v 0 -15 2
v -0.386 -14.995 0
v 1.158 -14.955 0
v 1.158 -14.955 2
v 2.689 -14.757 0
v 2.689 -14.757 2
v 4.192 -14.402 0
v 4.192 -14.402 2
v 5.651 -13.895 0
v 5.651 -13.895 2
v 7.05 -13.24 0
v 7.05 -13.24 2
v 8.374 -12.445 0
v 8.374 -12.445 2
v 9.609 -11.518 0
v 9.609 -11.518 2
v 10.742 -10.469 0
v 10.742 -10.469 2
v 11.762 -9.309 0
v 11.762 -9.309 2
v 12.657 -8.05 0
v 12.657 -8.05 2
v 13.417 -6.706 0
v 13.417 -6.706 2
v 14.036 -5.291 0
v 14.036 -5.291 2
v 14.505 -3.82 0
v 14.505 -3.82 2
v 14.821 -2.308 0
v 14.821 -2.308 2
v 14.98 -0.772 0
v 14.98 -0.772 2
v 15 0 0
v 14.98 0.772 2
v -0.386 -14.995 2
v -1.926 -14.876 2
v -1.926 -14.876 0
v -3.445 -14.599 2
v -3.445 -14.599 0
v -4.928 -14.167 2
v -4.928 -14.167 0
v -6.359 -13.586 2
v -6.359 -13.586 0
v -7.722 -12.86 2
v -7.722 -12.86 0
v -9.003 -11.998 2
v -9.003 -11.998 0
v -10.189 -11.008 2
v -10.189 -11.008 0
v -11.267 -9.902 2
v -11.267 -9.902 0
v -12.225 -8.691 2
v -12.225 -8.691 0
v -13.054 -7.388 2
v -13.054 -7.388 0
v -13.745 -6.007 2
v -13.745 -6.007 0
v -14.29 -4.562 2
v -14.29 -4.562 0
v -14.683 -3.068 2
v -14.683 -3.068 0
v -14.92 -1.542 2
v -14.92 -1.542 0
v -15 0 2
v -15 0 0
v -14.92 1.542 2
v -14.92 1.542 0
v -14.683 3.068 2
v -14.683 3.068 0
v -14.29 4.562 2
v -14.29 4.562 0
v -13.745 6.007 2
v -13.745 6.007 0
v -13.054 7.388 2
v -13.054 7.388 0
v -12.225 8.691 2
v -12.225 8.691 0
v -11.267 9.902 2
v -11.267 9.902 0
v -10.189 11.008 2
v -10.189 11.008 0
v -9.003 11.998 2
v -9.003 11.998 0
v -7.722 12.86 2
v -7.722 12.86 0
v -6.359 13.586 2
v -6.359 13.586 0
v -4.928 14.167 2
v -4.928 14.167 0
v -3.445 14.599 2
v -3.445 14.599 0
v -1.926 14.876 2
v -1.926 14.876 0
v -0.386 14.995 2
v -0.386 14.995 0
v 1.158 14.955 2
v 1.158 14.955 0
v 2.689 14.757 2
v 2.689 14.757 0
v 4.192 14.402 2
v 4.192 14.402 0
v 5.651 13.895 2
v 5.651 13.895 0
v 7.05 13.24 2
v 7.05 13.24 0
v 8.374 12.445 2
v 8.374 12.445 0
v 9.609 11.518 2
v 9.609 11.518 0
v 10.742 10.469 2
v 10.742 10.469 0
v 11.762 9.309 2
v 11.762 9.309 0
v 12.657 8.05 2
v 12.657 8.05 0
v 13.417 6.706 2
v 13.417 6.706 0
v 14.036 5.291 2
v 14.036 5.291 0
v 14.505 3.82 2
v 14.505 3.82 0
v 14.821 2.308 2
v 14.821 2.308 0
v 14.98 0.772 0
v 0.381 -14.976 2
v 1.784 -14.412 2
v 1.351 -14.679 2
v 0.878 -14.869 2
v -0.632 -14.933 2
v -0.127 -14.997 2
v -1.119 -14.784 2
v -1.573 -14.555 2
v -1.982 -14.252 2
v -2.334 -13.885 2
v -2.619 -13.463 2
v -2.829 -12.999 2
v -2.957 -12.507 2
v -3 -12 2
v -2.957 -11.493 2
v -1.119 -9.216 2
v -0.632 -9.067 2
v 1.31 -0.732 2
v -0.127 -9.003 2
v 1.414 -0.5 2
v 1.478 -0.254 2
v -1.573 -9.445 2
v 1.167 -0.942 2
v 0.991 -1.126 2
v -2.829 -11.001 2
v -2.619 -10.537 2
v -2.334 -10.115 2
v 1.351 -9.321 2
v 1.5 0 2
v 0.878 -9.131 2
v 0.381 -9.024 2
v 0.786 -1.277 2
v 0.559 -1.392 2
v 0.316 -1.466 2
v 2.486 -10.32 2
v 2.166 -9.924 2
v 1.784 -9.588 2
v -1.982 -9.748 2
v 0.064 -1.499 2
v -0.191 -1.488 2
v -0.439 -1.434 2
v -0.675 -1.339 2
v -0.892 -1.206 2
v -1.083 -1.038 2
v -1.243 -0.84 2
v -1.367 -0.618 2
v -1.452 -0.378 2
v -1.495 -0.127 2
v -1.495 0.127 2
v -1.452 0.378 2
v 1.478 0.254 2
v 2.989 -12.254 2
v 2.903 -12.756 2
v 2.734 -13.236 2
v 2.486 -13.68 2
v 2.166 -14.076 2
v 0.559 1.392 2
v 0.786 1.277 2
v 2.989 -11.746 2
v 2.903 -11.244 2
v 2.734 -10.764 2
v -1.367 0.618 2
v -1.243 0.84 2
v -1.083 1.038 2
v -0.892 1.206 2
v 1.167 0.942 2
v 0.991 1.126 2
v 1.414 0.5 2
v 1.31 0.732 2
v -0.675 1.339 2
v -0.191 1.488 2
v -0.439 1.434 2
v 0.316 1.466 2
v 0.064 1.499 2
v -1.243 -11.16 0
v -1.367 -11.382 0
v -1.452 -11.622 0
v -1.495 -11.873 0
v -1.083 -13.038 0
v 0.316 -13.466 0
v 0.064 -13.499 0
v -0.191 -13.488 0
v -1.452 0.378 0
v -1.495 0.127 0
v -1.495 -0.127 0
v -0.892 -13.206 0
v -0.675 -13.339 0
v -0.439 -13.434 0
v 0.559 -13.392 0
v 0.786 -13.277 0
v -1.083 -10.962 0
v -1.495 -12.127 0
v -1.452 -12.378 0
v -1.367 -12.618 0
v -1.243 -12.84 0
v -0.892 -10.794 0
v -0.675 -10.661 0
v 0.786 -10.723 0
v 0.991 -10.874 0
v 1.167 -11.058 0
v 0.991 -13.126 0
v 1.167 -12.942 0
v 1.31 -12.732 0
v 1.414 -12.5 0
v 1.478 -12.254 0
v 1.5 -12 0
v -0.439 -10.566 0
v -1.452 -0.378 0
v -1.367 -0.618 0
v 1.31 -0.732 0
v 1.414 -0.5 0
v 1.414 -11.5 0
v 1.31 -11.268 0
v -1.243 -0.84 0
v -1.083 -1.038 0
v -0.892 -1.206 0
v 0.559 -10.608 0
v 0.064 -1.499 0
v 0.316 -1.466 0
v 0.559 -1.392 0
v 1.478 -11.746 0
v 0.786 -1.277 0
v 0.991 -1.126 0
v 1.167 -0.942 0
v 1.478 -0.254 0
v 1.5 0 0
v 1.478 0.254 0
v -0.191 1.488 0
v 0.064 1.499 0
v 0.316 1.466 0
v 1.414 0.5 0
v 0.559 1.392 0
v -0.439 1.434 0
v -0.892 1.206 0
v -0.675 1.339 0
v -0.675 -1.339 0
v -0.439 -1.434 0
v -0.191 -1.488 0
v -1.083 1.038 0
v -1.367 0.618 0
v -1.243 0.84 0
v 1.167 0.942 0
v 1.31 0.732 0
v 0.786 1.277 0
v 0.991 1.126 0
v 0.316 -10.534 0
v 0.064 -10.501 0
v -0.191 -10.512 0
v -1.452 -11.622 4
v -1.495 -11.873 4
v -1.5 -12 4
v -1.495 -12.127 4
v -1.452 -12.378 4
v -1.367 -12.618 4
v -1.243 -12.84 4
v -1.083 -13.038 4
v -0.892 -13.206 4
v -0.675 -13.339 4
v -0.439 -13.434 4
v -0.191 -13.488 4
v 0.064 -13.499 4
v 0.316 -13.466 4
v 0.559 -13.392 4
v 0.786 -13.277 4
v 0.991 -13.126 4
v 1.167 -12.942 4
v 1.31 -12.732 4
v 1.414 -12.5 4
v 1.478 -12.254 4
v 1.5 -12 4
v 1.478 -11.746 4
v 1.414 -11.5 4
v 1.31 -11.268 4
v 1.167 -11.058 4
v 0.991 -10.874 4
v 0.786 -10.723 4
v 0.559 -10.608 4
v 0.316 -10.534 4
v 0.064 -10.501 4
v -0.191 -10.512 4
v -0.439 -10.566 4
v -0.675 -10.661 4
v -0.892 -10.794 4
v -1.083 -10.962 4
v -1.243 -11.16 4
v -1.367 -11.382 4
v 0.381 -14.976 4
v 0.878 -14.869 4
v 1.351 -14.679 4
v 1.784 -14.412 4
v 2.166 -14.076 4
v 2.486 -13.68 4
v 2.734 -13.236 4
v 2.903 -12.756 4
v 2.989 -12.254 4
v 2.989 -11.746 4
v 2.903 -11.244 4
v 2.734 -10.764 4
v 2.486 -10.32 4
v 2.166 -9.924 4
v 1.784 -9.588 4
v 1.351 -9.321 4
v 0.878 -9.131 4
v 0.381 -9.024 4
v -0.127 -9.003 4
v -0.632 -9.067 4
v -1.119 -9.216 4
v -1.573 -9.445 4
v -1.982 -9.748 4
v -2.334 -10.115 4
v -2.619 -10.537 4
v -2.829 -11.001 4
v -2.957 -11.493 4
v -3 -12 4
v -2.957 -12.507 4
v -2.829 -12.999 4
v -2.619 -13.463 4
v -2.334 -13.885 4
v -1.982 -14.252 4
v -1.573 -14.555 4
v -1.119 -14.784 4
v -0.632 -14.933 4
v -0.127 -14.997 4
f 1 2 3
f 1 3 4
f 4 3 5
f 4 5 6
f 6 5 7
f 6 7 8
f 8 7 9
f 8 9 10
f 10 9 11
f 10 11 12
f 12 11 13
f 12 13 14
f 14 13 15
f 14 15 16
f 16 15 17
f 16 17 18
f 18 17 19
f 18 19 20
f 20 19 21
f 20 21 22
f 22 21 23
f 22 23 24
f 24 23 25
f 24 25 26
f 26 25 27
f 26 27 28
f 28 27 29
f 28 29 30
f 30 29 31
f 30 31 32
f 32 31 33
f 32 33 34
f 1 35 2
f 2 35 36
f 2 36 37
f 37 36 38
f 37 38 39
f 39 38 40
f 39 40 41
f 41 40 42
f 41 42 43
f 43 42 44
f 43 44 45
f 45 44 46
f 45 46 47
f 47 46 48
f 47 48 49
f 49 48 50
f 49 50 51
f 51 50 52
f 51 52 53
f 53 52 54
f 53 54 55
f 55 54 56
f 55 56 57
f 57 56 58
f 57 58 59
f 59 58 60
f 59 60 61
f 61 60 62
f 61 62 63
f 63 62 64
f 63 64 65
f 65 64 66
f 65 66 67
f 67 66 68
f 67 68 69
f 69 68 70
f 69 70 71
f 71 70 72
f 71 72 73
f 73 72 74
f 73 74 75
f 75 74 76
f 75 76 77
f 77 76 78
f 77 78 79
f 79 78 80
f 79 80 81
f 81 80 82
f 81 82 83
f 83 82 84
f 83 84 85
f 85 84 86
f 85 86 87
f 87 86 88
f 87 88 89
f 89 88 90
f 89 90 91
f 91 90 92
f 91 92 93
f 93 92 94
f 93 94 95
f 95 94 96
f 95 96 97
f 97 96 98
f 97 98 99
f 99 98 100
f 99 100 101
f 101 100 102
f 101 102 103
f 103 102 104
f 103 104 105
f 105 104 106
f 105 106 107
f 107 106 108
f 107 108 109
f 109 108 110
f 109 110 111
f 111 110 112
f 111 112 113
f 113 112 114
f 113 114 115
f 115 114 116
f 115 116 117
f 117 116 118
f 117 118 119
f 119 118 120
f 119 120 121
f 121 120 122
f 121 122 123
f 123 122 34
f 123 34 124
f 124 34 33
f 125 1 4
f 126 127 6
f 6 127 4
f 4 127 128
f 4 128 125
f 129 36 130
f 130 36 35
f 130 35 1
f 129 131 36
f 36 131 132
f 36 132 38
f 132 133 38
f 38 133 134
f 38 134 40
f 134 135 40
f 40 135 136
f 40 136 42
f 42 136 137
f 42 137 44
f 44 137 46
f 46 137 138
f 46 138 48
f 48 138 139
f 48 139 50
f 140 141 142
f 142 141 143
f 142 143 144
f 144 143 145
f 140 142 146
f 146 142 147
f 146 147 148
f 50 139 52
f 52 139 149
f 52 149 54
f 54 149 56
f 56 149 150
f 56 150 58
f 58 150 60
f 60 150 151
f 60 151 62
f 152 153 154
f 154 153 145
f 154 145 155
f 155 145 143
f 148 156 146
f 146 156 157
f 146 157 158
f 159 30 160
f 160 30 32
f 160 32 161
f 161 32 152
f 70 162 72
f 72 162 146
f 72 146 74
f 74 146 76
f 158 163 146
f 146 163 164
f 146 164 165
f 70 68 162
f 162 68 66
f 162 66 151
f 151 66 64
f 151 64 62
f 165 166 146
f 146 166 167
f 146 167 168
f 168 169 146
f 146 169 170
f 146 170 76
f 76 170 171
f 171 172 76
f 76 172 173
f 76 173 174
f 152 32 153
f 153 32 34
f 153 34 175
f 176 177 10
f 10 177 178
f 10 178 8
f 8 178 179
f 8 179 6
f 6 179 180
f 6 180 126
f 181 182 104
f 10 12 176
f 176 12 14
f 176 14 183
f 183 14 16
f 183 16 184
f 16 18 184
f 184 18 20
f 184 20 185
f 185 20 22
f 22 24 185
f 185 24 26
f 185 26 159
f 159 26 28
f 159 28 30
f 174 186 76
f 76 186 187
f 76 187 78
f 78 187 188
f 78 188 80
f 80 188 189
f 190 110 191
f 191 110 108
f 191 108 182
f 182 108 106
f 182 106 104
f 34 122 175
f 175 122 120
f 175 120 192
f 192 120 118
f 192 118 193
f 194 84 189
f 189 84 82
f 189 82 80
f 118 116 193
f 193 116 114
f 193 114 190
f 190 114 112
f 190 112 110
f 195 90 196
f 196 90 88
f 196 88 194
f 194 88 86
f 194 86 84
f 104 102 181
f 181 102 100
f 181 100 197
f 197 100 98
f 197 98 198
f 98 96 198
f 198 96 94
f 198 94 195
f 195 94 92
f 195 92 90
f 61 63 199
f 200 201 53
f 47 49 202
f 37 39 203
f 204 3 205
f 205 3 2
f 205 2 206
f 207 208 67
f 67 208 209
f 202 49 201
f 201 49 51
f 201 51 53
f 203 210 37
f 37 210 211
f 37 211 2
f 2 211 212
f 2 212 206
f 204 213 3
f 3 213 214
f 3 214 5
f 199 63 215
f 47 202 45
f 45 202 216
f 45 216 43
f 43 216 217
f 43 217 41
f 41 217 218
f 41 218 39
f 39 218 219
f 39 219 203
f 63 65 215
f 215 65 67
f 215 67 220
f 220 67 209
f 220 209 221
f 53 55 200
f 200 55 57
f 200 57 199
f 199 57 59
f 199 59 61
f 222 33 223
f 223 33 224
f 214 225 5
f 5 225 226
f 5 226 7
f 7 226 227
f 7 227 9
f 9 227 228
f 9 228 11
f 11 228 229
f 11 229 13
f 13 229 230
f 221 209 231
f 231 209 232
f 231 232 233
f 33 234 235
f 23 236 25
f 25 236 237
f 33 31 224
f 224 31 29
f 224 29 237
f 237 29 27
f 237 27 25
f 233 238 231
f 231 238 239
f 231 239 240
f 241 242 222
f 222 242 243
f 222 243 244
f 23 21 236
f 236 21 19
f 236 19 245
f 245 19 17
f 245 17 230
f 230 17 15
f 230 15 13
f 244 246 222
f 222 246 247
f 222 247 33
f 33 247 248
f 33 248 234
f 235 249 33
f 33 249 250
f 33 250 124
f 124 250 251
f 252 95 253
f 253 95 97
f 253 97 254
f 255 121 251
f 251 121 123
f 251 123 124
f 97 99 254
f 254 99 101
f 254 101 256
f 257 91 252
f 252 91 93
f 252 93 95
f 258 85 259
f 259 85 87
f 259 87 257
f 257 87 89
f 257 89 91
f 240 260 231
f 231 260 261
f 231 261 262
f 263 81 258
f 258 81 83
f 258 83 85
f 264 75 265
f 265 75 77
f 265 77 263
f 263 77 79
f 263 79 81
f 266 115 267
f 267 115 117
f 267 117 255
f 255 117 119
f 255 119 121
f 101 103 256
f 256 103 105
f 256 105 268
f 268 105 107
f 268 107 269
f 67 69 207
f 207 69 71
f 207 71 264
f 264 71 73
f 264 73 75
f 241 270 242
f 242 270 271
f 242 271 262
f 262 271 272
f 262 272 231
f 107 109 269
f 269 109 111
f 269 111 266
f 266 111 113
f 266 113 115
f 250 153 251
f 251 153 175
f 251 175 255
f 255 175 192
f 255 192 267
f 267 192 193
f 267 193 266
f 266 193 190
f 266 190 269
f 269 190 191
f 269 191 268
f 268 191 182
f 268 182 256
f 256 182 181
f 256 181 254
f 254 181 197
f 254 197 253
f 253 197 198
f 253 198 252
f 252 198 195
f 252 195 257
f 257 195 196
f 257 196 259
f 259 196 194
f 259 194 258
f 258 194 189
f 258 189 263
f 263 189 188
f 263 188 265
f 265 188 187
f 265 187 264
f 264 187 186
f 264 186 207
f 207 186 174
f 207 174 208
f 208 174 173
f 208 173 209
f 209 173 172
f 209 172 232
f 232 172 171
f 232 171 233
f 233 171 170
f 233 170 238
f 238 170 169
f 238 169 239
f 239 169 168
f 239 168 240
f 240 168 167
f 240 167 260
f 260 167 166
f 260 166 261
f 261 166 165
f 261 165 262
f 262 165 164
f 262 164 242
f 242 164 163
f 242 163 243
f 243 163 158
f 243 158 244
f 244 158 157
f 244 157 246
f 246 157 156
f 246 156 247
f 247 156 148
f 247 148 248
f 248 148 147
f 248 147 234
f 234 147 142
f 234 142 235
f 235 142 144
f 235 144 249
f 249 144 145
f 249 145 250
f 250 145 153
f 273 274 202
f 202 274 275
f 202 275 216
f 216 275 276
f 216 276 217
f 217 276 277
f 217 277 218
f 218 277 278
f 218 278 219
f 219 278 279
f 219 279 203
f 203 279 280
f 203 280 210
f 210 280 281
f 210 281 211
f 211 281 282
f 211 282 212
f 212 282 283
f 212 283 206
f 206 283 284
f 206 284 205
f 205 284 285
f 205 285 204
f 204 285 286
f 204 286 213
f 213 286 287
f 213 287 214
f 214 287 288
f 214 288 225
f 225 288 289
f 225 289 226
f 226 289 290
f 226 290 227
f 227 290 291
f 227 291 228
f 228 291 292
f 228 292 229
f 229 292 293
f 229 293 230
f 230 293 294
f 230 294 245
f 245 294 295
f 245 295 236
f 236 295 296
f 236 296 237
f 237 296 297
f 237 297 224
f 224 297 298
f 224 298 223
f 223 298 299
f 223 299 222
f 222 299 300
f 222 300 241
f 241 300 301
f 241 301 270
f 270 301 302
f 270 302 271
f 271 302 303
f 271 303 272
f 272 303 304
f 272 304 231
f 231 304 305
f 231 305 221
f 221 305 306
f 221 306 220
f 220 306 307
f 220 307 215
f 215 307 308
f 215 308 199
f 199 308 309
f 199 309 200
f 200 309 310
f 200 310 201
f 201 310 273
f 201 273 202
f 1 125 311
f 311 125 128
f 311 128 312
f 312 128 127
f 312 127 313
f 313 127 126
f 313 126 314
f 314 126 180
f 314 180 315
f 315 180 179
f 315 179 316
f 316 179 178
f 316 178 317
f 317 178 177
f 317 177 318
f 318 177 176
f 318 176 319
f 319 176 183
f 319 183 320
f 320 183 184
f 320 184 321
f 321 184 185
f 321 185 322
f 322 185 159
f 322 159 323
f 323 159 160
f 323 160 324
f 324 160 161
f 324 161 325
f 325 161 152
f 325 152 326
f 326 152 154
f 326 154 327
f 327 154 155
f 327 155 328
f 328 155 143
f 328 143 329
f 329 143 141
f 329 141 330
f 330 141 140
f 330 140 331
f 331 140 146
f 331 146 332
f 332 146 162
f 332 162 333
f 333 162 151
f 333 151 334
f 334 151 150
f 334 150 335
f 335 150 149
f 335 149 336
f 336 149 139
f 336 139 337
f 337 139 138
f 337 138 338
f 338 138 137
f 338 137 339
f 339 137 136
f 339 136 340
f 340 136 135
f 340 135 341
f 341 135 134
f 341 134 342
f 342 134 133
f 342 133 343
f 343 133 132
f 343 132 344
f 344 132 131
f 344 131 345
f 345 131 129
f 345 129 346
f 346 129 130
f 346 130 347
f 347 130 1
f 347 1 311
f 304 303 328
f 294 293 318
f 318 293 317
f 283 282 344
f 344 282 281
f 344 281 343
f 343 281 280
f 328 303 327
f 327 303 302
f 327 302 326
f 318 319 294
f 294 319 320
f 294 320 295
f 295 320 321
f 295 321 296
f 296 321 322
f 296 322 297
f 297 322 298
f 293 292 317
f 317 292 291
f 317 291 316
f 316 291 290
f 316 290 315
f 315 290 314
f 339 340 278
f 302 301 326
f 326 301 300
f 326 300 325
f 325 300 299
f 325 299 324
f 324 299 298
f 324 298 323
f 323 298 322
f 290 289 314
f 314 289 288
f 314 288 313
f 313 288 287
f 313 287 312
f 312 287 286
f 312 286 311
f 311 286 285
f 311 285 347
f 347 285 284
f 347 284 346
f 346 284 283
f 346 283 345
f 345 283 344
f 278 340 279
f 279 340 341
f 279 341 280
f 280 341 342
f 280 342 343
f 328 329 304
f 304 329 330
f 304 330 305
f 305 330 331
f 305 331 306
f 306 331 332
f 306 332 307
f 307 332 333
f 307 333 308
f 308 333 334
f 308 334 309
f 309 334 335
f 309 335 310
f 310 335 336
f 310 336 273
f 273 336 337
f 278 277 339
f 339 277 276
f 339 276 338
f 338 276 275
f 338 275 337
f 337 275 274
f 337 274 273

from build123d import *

# Parameters (mm, degrees)
ESQUISSE1_R             = 15
BOSS_EXTRU_1_DEPTH      = 2
ESQUISSE2_R             = 1.5
ENL_V_MAT_EXTRU_1_DEPTH = 3
ESQUISSE3_R             = 1.5
ENL_V_MAT_EXTRU_2_DEPTH = 3
BOSS_EXTRU_2_START      = -4
ESQUISSE4_R             = 3
ESQUISSE4_R_2           = 1.5
BOSS_EXTRU_2_DEPTH      = 4


with BuildPart() as part:
    # Esquisse1 → Boss.-Extru.1 (new body)
    with BuildSketch(Plane.XY):
        Circle(ESQUISSE1_R)
    extrude(amount=BOSS_EXTRU_1_DEPTH)

    # Esquisse2 → Enlèv. mat.-Extru.1 (cut)
    with BuildSketch(Plane.XY.offset(2)):
        Circle(ESQUISSE2_R)
    extrude(amount=-ENL_V_MAT_EXTRU_1_DEPTH, mode=Mode.SUBTRACT)

    # Esquisse3 → Enlèv. mat.-Extru.2 (cut)
    with BuildSketch(Plane.XY.offset(2)):
        with Locations((0, -12)):
            Circle(ESQUISSE3_R)
    extrude(amount=-ENL_V_MAT_EXTRU_2_DEPTH, mode=Mode.SUBTRACT)

    # Esquisse4 → Boss.-Extru.2 (add)
    with BuildSketch(Plane(origin=(0, 0, 0), x_dir=(-1, 0, 0), z_dir=(0, 0, -1)).offset(BOSS_EXTRU_2_START)):
        with Locations((0, -12)):
            Circle(ESQUISSE4_R)
        with Locations(Location((0, -12, 0), (0, 0, 180))):
            Circle(ESQUISSE4_R_2, mode=Mode.SUBTRACT)
    extrude(amount=BOSS_EXTRU_2_DEPTH)


solid = part.part
